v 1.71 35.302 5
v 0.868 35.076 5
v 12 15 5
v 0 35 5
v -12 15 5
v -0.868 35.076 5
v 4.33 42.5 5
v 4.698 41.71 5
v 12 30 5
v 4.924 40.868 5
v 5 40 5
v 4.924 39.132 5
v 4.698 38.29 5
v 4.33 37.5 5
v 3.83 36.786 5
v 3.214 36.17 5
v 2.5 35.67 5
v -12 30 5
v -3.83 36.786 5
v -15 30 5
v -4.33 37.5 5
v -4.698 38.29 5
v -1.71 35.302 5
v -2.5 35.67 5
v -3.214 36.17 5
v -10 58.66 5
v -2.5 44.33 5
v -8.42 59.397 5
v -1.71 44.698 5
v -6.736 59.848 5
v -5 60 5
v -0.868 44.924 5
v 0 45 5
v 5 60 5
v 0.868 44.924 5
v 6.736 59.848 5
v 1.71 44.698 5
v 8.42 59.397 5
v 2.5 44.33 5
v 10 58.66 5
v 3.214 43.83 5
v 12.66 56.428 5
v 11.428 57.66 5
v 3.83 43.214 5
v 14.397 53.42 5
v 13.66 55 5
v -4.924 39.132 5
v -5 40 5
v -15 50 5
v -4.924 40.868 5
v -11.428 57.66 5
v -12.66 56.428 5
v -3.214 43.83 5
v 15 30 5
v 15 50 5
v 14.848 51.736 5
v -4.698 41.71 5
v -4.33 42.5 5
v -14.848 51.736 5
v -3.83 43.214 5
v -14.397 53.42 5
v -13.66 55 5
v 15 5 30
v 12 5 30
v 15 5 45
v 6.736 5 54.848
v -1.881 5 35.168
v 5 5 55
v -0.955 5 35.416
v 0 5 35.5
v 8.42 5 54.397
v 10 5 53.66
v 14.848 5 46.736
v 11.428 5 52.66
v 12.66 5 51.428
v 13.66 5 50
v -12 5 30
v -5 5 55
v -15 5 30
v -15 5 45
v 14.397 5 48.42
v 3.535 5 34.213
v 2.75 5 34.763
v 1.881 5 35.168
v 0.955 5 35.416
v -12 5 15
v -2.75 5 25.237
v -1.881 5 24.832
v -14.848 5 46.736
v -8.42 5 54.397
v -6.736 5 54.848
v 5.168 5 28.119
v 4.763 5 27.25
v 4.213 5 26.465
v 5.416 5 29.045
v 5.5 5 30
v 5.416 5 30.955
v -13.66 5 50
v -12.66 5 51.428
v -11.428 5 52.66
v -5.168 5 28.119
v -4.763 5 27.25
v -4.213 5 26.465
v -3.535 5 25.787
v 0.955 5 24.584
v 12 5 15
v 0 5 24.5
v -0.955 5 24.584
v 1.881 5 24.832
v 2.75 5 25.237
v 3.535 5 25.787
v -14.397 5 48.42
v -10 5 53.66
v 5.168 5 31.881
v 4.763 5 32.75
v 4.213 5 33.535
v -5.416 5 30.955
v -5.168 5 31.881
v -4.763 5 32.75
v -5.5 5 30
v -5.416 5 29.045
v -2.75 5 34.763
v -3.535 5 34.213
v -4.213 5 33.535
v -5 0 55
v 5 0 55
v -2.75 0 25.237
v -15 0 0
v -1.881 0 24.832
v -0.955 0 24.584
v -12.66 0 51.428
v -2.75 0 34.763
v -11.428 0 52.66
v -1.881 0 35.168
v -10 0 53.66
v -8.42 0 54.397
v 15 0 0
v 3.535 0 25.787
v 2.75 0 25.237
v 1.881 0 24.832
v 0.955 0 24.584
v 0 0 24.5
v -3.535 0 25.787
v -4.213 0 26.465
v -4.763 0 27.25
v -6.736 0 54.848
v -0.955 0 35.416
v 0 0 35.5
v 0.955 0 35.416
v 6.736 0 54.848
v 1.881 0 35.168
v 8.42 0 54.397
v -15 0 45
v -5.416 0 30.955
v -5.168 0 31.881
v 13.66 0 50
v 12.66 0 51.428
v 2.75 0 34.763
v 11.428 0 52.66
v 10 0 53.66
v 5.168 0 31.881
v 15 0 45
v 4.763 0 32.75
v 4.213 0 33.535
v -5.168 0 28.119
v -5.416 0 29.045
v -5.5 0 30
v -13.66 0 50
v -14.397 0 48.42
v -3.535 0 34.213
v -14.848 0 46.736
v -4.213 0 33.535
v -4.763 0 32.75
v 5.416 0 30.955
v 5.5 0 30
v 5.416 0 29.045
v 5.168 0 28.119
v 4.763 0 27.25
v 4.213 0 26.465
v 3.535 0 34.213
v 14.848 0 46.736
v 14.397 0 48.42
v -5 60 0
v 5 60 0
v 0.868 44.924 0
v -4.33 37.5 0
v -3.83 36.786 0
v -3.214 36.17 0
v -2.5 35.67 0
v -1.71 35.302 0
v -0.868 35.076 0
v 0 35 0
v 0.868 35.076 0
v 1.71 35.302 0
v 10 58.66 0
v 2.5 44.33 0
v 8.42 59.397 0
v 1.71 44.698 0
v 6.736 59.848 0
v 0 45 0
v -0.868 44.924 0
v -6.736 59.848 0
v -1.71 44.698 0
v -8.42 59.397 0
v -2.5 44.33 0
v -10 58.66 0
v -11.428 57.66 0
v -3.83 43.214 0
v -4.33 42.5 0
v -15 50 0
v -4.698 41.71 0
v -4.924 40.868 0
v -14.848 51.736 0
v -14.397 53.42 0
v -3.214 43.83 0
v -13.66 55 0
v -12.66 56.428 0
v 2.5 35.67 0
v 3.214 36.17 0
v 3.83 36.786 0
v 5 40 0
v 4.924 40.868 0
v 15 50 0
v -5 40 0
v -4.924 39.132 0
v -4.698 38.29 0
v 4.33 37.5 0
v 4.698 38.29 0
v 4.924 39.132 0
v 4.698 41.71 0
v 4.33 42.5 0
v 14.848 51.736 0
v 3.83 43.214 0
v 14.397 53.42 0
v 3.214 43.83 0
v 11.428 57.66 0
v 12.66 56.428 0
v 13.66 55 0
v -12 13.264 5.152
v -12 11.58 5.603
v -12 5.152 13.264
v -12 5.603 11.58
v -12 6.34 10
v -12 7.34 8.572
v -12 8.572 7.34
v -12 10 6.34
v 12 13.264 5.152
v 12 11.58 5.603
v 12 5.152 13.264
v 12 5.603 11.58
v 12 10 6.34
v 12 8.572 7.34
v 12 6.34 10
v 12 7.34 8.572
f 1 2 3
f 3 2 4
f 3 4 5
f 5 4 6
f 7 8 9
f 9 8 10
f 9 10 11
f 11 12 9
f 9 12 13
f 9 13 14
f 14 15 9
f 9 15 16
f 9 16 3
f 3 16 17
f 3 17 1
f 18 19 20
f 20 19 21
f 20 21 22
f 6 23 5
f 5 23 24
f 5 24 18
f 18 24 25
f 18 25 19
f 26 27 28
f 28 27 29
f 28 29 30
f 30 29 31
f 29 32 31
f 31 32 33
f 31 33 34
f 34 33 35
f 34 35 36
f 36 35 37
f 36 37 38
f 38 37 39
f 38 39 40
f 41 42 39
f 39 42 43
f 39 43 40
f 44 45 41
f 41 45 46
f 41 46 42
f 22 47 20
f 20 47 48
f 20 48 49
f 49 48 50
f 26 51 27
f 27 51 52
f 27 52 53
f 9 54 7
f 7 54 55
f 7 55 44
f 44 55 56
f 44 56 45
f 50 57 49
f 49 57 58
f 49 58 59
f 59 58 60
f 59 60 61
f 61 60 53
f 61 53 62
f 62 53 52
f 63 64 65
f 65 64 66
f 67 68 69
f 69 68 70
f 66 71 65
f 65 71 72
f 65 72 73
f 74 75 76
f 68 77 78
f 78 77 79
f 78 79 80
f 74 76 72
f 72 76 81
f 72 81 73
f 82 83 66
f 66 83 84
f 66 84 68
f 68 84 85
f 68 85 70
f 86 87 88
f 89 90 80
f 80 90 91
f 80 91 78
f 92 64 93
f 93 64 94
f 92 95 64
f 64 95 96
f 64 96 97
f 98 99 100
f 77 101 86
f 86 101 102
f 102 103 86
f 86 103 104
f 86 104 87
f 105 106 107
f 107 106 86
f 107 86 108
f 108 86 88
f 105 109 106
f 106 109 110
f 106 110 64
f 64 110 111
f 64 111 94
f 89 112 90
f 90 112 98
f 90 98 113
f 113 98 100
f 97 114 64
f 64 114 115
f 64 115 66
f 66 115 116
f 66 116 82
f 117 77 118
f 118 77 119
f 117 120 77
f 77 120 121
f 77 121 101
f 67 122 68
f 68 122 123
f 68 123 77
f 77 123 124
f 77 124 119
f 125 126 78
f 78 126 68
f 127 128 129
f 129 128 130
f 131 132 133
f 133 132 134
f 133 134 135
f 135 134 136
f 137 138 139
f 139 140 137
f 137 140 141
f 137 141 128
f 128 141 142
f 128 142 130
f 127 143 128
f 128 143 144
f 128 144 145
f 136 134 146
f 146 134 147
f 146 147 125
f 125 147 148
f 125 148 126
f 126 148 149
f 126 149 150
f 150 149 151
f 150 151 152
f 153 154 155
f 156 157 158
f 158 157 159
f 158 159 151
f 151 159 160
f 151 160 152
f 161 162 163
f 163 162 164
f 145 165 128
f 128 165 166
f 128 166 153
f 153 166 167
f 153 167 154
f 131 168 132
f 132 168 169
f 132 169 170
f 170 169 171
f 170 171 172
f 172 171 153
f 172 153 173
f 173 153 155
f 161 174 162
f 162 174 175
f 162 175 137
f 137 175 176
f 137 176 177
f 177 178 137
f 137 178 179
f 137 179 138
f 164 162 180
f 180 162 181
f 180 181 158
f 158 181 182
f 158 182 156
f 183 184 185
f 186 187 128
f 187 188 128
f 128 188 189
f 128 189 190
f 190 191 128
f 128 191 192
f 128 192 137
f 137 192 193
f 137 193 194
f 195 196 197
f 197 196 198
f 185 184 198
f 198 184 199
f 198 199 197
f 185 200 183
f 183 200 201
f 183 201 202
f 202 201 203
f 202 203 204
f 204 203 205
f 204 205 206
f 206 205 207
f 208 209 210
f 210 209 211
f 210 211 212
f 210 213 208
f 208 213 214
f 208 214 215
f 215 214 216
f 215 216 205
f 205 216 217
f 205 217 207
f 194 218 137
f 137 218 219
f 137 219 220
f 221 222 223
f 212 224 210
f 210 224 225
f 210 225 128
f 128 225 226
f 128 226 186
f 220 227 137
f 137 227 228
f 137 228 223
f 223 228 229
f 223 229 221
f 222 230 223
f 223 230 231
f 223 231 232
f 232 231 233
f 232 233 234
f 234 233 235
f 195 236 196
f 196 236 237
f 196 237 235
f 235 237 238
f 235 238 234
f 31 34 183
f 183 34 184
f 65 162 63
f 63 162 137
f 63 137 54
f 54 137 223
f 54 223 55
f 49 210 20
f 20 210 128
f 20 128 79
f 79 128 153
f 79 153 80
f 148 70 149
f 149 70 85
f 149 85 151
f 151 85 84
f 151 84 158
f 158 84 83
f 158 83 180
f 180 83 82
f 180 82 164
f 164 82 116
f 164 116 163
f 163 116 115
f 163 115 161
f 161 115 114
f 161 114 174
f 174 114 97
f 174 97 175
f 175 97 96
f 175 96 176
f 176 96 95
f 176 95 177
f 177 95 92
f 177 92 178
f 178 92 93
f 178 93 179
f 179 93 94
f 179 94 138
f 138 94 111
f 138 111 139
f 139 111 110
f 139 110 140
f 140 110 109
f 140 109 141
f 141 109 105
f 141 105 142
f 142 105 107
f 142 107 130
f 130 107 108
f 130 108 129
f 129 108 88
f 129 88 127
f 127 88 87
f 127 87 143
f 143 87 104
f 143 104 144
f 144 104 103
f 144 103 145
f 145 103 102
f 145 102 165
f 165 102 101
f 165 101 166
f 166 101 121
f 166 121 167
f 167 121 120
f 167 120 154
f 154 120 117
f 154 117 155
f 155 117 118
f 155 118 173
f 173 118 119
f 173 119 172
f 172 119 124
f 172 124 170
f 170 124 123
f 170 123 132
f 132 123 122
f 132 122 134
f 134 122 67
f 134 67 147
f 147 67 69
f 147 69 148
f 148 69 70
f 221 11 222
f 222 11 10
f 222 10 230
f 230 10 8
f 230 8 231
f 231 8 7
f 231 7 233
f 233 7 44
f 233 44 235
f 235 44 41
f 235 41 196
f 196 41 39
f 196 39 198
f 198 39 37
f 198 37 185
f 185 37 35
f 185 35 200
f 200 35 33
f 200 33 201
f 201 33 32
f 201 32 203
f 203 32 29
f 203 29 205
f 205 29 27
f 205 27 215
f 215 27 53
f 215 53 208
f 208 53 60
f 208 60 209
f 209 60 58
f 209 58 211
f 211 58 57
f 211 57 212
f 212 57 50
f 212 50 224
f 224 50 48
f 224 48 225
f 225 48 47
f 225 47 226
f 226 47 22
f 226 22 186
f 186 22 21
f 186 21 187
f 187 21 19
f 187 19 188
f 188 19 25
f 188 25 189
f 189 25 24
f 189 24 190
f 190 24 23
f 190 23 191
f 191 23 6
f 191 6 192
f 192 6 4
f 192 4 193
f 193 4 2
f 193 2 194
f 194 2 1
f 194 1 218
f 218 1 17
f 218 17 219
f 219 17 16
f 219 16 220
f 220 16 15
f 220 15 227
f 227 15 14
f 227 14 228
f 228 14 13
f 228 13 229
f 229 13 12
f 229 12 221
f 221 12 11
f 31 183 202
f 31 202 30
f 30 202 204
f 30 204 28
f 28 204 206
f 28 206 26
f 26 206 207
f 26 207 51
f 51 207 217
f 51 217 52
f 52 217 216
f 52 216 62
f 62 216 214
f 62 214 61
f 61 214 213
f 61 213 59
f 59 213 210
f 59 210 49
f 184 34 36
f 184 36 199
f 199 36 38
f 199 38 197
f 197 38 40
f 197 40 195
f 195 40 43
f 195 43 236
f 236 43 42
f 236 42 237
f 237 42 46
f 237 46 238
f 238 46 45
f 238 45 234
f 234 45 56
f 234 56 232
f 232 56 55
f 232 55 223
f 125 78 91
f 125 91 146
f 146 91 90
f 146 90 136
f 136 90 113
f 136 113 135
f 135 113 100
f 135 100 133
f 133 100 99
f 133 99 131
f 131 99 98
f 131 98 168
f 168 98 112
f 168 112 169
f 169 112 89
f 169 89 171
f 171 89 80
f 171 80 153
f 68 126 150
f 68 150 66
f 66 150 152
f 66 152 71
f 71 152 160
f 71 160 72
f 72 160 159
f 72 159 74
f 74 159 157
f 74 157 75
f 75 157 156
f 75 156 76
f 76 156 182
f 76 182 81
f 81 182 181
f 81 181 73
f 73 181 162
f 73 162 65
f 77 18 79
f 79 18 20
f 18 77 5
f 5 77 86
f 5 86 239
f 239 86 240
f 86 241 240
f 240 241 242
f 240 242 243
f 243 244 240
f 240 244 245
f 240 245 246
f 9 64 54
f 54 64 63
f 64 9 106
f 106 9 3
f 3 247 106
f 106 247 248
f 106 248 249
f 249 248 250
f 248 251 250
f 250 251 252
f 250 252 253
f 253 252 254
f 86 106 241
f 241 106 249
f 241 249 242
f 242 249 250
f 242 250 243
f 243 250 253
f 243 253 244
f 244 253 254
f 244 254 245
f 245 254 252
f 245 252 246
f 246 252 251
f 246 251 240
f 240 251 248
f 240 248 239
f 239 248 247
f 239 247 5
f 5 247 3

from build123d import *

# Parameters (mm, degrees)
BOSS_EXTRUDE1_DEPTH = 15
SKETCH2_R           = 5.5
CUT_EXTRUDE1_DEPTH  = 30
SKETCH3_R           = 5
CUT_EXTRUDE2_DEPTH  = 30
FILLET1_R           = 10
BOSS_EXTRUDE2_DEPTH = 3
FILLET2_R           = 10


with BuildPart() as part:
    # Sketch1 → Boss-Extrude1 (new body, symmetric)
    with BuildSketch(Plane(origin=(0, 0, 0), x_dir=(0, 0, -1), z_dir=(1, 0, 0))):
        Polygon((-55, 5), (-5, 5), (-5, 60), (0, 60), (0, 0), (-55, 0), align=None)
    extrude(amount=BOSS_EXTRUDE1_DEPTH, both=True)

    # Sketch2 → Cut-Extrude1 (cut)
    with BuildSketch(Plane(origin=(0, 5, 0), x_dir=(1, 0, 0), z_dir=(0, 1, 0))):
        with Locations((0, -30)):
            Circle(SKETCH2_R)
    extrude(amount=-CUT_EXTRUDE1_DEPTH, mode=Mode.SUBTRACT)

    # Sketch3 → Cut-Extrude2 (cut)
    with BuildSketch(Plane.XY.offset(5)):
        with Locations((0, 40)):
            Circle(SKETCH3_R)
    extrude(amount=-CUT_EXTRUDE2_DEPTH, mode=Mode.SUBTRACT)

    # Fillet1
    fillet1_edges = [part.edges().sort_by_distance(p)[0] for p in [
        (15, 60, 2.5),
        (15, 2.5, 55),
        (-15, 60, 2.5),
        (-15, 2.5, 55),
    ]]
    fillet(fillet1_edges, radius=FILLET1_R)

    # Sketch4 → Boss-Extrude2 (add)
    with BuildSketch(Plane.ZY.offset(15)):
        Polygon((30, 5), (5, 30), (5, 5), align=None)
    boss_extrude2 = extrude(amount=-BOSS_EXTRUDE2_DEPTH)

    # Mirror1: Boss-Extrude2 across plane
    add(boss_extrude2.mirror(Plane(origin=(0, 0, 0), x_dir=(0, 0, 1), z_dir=(1, 0, 0))))

    # Fillet2
    fillet2_edges = [part.edges().sort_by_distance(p)[0] for p in [
        (0, 5, 5),
    ]]
    fillet(fillet2_edges, radius=FILLET2_R)


solid = part.part
